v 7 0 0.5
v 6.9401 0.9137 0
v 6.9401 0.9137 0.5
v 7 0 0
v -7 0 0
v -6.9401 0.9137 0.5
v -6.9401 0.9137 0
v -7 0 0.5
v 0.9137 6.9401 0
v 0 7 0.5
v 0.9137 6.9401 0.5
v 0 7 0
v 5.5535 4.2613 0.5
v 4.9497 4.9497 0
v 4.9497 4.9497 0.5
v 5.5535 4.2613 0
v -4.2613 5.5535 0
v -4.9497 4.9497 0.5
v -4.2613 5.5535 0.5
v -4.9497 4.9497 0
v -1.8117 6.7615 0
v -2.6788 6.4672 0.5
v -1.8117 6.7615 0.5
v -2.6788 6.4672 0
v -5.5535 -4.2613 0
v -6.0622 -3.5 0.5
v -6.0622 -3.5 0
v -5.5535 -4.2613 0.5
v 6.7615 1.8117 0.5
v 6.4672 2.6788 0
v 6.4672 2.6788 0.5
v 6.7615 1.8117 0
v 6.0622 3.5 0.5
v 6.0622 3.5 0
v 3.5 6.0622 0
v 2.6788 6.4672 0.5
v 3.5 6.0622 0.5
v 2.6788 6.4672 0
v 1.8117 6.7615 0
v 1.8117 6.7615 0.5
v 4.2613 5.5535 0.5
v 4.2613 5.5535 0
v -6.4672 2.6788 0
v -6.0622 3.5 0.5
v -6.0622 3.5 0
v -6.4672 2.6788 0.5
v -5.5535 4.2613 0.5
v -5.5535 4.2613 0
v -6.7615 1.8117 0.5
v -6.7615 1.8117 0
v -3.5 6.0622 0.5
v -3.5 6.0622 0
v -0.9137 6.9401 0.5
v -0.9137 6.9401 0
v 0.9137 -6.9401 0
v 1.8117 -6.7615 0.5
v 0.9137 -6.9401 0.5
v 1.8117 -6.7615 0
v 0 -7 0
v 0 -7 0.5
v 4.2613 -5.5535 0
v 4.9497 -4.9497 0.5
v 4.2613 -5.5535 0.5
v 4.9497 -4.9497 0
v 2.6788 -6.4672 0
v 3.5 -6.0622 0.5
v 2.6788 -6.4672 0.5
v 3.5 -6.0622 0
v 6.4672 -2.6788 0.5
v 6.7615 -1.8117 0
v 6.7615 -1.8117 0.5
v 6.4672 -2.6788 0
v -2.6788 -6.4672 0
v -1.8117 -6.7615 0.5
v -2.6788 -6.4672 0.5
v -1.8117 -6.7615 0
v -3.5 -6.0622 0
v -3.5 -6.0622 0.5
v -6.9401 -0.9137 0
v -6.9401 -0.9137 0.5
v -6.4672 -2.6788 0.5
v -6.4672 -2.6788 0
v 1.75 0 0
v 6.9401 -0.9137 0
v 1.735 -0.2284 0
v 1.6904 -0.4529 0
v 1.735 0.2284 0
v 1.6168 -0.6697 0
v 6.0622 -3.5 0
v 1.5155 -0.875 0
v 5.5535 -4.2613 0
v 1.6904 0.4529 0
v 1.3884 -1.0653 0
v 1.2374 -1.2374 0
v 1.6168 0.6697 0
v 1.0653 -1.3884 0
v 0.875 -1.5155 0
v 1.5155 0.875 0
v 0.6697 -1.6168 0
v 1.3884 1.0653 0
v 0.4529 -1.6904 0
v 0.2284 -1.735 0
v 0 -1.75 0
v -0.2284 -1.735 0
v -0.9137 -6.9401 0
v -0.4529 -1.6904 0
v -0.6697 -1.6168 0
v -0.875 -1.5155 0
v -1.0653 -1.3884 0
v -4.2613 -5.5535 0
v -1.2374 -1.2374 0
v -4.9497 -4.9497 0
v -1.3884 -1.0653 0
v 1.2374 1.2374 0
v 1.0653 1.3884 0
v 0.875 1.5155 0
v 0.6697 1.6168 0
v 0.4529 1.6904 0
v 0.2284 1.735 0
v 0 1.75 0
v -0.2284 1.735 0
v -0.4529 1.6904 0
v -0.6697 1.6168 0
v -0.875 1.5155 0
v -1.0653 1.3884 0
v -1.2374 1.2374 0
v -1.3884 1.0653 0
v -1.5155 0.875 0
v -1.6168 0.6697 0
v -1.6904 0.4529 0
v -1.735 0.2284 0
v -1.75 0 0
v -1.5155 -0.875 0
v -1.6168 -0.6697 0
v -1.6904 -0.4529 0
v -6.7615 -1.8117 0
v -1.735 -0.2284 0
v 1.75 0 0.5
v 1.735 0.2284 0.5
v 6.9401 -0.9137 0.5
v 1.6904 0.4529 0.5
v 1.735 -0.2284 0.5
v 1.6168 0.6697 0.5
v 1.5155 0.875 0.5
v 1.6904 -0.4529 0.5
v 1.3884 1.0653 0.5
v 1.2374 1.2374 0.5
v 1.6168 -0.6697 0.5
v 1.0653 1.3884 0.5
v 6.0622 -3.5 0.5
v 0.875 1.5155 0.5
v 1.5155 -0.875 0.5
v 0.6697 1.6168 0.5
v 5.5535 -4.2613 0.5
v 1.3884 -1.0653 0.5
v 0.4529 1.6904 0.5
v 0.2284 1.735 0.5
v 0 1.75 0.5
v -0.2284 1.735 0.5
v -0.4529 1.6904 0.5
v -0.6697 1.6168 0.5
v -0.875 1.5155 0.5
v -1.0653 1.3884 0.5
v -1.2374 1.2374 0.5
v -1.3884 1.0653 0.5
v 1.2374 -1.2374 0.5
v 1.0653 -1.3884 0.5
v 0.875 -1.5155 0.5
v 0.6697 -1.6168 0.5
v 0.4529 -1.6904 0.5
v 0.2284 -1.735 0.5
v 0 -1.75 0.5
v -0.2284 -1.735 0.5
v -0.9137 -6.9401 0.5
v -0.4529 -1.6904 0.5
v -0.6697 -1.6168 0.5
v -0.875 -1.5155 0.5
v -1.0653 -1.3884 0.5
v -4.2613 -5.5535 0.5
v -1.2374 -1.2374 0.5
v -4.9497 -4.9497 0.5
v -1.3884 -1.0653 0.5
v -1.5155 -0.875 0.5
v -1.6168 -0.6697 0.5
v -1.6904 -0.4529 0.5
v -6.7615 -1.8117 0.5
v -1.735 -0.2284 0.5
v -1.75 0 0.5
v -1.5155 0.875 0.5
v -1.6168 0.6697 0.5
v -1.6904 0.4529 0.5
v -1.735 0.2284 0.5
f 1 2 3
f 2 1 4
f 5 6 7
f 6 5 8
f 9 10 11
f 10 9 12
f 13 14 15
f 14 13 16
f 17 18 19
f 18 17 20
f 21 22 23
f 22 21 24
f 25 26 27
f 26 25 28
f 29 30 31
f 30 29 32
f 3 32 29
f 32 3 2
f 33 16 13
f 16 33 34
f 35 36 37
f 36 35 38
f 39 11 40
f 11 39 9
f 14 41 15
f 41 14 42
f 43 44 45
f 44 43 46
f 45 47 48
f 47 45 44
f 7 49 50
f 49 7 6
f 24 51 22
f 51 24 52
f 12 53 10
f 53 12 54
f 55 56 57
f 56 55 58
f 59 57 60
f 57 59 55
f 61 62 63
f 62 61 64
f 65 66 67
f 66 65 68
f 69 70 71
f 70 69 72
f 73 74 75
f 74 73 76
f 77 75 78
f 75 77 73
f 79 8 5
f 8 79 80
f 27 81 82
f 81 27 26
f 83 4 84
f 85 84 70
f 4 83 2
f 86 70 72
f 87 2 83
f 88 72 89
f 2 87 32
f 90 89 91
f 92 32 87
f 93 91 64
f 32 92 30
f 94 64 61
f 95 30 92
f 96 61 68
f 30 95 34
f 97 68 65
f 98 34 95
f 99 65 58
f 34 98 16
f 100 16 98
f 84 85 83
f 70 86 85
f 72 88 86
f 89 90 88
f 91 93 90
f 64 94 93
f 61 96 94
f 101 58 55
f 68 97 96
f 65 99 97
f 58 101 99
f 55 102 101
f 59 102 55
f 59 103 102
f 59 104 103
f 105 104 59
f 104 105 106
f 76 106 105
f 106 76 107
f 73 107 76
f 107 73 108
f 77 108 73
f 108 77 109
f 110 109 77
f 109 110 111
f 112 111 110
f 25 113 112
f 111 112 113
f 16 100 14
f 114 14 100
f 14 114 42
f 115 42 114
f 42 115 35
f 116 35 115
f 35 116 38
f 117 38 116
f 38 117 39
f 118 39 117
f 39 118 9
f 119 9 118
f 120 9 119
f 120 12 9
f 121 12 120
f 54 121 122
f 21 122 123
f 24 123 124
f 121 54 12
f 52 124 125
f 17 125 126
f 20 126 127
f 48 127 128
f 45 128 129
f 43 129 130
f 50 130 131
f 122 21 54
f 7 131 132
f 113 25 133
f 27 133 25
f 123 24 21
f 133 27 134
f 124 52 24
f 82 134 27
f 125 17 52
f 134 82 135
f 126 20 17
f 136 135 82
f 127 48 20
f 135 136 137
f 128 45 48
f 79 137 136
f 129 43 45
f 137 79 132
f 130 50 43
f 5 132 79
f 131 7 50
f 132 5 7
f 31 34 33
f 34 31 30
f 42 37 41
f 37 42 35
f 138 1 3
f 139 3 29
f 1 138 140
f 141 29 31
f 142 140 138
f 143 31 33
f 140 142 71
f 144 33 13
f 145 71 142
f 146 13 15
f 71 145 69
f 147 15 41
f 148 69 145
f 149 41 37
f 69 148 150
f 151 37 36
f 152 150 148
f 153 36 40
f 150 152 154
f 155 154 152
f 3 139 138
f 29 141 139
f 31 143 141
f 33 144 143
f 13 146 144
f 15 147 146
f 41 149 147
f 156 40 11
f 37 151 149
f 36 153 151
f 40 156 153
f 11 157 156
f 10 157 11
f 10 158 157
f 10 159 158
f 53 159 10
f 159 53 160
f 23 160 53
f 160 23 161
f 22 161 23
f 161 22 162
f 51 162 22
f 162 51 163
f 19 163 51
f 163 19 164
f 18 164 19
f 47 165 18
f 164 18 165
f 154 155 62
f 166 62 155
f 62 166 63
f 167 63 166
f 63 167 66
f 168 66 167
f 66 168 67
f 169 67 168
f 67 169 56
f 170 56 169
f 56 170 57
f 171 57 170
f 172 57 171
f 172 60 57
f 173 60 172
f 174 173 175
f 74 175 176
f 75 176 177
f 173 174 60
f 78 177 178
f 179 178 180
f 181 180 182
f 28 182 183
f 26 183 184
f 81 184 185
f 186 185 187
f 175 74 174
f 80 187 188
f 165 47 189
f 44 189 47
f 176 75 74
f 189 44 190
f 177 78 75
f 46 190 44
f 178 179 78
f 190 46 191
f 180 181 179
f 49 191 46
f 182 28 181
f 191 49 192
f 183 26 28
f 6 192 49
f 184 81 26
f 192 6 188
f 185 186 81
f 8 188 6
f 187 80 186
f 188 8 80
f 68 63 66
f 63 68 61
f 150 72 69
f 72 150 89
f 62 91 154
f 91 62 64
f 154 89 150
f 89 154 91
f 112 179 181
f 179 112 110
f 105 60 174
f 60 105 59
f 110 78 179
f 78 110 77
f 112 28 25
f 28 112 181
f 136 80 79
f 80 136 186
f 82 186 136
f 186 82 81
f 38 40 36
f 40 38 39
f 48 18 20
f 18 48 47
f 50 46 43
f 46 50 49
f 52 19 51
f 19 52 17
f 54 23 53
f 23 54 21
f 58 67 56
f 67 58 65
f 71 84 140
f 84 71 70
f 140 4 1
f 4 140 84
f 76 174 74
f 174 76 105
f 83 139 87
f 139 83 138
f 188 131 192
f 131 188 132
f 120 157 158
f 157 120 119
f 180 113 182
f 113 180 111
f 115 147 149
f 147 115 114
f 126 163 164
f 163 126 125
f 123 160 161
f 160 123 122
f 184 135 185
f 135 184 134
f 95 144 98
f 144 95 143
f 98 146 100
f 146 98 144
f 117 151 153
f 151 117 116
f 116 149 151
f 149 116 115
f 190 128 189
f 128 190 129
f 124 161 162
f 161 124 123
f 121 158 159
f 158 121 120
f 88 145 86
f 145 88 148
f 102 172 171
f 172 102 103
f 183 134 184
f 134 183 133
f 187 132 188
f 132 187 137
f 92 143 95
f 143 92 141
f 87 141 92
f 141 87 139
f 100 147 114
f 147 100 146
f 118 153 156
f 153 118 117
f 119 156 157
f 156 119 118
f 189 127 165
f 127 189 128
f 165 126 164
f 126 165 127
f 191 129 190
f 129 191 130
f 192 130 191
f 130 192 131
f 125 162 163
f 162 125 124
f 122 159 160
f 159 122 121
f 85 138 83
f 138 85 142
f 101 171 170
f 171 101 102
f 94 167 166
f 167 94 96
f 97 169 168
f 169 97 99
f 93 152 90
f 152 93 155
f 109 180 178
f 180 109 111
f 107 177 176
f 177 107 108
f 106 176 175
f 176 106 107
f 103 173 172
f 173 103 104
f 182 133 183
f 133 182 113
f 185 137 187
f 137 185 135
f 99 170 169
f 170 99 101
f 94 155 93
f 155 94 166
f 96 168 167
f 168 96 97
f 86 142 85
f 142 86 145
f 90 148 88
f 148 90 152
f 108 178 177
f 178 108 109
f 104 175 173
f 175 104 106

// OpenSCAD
// Gen-CP — assembly gap shim, h = run_clear (rotor face -> flange); copper is inside the flanges
include <parameters.scad>;
$fn = 48;
difference() {
    cylinder(d=spacer_pad_od, h=gap_spacer_h);
    translate([0, 0, -0.1]) cylinder(d=spacer_pad_id, h=gap_spacer_h + 0.2);
}
